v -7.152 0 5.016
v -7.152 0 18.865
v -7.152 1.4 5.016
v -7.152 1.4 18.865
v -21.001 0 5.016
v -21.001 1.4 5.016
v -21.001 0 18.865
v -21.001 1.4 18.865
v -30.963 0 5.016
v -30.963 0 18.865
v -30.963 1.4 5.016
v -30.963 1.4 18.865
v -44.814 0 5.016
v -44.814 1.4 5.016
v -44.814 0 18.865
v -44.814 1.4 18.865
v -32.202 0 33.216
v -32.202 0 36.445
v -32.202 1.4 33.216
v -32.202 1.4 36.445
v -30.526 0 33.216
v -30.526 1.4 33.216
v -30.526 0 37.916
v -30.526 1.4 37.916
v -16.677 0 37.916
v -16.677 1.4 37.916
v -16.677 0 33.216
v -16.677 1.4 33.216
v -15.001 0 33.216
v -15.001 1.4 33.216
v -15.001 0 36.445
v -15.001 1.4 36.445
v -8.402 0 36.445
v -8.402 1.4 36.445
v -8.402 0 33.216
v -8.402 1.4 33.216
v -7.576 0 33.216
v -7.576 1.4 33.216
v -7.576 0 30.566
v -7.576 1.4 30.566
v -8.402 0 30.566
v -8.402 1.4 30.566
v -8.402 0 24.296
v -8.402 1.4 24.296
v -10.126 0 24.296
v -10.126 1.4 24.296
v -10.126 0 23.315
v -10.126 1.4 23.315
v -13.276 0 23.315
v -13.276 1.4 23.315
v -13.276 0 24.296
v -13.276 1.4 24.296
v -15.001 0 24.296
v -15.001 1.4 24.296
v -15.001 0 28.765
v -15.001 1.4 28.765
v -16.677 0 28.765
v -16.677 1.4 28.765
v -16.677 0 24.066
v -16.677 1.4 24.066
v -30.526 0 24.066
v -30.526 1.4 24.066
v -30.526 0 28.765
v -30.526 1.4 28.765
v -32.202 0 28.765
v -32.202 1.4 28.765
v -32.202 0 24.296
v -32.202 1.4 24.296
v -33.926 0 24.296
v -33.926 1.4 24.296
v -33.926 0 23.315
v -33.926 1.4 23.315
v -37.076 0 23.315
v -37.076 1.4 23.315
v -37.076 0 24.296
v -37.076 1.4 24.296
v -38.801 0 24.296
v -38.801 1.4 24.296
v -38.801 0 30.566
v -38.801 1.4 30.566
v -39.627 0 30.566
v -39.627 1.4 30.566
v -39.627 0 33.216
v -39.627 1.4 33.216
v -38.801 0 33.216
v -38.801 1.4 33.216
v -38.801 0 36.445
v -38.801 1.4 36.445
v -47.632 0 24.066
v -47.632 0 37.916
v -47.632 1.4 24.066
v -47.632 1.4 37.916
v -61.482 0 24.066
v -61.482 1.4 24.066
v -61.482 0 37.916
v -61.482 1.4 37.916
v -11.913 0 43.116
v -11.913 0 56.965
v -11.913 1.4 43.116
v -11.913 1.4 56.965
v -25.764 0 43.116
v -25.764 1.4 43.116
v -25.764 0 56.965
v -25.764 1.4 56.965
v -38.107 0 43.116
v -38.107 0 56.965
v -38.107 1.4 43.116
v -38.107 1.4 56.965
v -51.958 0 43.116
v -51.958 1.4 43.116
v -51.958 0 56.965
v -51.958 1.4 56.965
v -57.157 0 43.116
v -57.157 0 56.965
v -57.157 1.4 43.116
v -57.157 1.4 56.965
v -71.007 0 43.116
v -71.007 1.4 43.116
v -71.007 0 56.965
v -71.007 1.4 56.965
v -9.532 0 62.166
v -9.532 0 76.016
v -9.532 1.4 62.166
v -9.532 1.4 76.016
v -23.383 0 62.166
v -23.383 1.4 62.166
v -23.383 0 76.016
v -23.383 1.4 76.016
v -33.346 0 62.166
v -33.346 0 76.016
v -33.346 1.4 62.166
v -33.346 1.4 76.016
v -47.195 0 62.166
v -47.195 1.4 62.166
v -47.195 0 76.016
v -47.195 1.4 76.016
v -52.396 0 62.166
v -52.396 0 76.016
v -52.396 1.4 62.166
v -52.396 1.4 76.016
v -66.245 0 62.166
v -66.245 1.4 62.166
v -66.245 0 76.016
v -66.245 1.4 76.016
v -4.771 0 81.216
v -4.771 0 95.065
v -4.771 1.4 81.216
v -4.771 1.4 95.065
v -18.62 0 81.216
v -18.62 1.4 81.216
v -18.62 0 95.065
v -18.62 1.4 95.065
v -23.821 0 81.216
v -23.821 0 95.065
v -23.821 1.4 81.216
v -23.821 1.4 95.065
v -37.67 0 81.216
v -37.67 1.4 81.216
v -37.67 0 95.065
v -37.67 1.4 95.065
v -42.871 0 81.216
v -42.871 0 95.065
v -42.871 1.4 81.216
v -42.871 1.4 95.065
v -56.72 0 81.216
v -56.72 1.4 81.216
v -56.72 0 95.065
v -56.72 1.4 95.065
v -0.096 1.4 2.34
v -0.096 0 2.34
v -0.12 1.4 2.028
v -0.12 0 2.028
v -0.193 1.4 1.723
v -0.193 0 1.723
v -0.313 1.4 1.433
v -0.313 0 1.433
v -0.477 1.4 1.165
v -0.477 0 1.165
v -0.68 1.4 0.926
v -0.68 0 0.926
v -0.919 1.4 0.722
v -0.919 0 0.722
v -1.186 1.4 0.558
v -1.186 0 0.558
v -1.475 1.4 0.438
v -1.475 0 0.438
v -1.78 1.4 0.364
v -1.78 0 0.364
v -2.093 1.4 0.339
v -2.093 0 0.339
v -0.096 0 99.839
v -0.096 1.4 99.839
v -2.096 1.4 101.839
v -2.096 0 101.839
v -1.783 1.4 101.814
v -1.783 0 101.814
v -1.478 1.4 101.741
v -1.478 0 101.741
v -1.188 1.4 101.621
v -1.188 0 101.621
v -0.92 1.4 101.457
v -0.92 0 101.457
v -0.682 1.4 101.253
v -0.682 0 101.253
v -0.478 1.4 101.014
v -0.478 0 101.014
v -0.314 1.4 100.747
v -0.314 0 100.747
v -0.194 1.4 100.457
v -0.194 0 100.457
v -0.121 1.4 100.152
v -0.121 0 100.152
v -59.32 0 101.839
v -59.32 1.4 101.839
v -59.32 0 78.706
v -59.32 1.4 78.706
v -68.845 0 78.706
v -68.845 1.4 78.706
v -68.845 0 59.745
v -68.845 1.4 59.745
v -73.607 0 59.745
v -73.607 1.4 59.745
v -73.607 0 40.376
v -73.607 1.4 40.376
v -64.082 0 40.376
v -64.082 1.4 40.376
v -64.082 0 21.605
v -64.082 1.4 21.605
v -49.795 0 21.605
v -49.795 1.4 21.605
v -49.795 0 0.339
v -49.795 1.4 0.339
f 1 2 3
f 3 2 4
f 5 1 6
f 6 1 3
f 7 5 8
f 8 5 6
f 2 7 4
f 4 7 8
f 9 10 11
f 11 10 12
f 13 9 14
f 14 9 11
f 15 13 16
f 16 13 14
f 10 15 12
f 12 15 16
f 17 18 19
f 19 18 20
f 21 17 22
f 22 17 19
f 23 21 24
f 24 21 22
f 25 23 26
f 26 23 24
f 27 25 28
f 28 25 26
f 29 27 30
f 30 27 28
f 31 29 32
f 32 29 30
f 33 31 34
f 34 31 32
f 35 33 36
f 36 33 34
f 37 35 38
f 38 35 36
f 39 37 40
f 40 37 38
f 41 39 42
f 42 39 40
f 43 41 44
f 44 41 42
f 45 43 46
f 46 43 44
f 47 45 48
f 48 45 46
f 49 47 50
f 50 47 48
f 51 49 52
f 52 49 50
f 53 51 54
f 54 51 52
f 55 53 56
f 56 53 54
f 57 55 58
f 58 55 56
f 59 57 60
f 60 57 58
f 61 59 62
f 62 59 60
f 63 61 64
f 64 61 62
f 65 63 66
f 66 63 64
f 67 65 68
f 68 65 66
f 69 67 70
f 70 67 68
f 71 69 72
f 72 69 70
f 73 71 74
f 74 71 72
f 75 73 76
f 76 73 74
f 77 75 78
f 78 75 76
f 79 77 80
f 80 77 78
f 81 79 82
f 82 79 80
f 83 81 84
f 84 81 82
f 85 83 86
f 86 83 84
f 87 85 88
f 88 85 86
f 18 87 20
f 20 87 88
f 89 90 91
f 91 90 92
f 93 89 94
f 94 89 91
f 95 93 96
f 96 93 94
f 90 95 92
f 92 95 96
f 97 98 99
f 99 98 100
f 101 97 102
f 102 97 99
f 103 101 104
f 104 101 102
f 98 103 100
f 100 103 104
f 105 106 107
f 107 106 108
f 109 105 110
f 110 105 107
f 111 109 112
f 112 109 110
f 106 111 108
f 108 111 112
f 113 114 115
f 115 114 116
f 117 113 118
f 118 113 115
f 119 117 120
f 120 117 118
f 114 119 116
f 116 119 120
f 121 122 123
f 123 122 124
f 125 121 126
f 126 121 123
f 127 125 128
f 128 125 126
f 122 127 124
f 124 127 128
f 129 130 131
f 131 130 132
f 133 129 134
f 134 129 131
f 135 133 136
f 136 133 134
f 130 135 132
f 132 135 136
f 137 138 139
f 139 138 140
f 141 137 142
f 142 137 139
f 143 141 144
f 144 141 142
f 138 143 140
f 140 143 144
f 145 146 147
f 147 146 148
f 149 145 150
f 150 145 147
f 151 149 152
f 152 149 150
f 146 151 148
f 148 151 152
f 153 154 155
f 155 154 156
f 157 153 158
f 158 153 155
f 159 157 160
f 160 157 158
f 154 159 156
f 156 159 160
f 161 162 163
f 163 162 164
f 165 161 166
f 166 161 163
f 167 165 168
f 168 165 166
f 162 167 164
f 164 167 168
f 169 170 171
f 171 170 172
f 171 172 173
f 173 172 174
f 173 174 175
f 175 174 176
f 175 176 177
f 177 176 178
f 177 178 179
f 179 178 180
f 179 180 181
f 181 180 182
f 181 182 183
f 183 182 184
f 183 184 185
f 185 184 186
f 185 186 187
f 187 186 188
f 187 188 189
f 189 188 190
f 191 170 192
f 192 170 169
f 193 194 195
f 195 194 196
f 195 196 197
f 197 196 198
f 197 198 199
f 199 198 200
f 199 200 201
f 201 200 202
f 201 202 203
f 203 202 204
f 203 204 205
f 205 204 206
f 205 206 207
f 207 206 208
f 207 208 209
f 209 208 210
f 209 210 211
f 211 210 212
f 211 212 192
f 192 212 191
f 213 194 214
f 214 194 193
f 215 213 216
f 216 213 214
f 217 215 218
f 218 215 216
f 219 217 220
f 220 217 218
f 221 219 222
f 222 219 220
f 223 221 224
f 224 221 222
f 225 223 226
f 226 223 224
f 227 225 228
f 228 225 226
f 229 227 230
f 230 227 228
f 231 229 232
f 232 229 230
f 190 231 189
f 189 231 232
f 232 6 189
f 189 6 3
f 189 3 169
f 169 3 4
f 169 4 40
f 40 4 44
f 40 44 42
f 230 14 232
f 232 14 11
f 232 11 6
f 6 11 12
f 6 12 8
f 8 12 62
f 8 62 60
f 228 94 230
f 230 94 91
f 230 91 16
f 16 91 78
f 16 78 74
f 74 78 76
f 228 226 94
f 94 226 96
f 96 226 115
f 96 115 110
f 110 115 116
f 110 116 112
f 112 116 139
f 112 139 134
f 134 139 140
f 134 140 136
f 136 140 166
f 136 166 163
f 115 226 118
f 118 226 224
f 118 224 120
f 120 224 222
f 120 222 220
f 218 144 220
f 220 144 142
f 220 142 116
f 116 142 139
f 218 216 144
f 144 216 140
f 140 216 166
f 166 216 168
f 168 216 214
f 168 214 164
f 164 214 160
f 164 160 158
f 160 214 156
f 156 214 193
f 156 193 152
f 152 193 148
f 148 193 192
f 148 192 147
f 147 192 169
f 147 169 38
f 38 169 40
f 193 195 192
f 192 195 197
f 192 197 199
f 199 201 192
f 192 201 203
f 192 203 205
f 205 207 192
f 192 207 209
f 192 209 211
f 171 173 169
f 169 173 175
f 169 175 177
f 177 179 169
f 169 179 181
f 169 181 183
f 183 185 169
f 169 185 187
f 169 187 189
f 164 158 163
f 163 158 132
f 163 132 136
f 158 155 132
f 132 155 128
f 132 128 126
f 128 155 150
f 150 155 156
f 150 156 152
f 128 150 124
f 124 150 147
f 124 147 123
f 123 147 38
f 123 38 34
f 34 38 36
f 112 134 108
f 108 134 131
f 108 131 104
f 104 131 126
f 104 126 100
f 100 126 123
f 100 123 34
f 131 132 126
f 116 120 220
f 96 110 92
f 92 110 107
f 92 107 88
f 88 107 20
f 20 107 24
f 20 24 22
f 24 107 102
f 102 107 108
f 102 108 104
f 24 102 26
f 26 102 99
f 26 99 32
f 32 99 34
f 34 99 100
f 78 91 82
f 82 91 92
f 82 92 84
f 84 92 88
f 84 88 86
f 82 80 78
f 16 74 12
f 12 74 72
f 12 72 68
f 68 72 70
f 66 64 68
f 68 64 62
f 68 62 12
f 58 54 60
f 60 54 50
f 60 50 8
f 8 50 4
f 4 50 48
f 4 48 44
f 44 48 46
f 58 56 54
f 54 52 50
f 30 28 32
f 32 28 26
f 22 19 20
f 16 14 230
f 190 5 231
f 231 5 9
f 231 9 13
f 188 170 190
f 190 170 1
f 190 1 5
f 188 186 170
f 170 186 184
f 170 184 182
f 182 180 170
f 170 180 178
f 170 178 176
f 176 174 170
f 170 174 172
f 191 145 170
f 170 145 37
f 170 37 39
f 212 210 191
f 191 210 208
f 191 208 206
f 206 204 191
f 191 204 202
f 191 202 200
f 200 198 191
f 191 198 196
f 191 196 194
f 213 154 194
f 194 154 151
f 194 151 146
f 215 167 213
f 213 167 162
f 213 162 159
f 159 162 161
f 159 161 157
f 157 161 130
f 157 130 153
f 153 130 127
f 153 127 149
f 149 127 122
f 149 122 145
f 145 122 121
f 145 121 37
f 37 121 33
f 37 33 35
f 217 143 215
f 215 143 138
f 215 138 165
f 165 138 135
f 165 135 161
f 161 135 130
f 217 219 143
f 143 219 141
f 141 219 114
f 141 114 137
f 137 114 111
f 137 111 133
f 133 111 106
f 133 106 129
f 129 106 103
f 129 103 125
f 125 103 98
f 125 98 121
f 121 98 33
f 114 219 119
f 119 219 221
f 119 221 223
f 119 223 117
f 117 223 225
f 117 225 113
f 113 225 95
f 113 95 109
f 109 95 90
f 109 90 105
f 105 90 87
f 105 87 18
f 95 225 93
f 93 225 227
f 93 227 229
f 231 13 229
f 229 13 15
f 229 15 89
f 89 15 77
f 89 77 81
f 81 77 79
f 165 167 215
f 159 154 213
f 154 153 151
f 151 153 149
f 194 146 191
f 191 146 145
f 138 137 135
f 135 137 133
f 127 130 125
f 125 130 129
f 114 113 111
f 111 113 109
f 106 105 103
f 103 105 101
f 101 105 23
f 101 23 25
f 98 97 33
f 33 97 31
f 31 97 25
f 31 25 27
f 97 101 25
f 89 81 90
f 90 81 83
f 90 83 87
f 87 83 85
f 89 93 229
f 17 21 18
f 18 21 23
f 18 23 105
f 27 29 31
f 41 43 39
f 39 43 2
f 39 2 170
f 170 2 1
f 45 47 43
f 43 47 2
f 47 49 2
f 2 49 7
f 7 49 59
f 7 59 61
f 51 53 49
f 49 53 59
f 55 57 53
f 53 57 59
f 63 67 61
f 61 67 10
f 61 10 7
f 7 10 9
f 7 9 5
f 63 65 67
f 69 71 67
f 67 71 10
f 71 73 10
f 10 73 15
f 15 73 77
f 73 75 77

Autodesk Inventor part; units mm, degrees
ref_plane "YZ Plane" through (0, 0, 0) normal (1, 0, 0) x (0, 1, 0)
ref_plane "XZ Plane" through (0, 0, 0) normal (0, 1, 0) x (-1, 0, 0)
ref_plane "XY Plane" through (0, 0, 0) normal (0, 0, 1) x (1, 0, 0)
sketch "Sketch1" plane through (0, 0, 0) normal (0, 1, 0) x (-1, 0, 0)
  line L0 (309.0479, 99.8402) -> (309.0479, 2.3404)
  line L1 (307.045, 0.3402) -> (2.0931, 0.3389)
  line L2 (0.096, 2.3404) -> (0.096, 99.8389)
  line L3 (2.096, 101.8389) -> (307.045, 101.8402)
  line L4 (126.213, 18.8654) -> (126.213, 14.1663)
  line L5 (126.213, 14.1663) -> (86.4387, 14.1663)
  line L6 (86.4387, 14.1663) -> (86.4387, 17.395)
  line L7 (86.4387, 17.395) -> (84.7136, 17.395)
  line L8 (81.5633, 17.395) -> (79.8382, 17.395)
  line L9 (79.8382, 17.395) -> (79.8382, 14.1663)
  line L10 (79.8382, 14.1663) -> (79.0141, 14.1663)
  line L11 (79.0141, 14.1663) -> (79.0141, 11.5163)
  line L12 (79.0141, 11.5163) -> (79.8382, 11.5163)
  line L13 (79.8382, 11.5163) -> (79.8382, 5.2462)
  line L14 (79.8382, 5.2462) -> (81.5633, 5.2462)
  line L15 (81.5633, 5.2462) -> (81.5633, 4.265)
  line L16 (81.5633, 4.265) -> (84.7136, 4.265)
  line L17 (84.7136, 4.265) -> (84.7136, 5.2462)
  line L18 (84.7136, 5.2462) -> (86.4387, 5.2462)
  line L19 (86.4387, 5.2462) -> (86.4387, 9.7166)
  line L20 (86.4387, 9.7166) -> (126.213, 9.7166)
  line L21 (126.213, 9.7166) -> (126.213, 5.0161)
  line L22 (126.213, 5.0161) -> (140.064, 5.0161)
  line L23 (140.064, 5.0161) -> (140.064, 9.7166)
  line L24 (140.064, 9.7166) -> (179.838, 9.7166)
  line L25 (179.838, 9.7166) -> (179.838, 5.2462)
  line L26 (179.838, 5.2462) -> (181.563, 5.2462)
  line L27 (181.563, 5.2462) -> (181.563, 4.265)
  line L28 (181.563, 4.265) -> (184.714, 4.265)
  line L29 (184.714, 4.265) -> (184.714, 5.2462)
  line L30 (184.714, 5.2462) -> (186.439, 5.2462)
  line L31 (186.439, 5.2462) -> (186.439, 11.5163)
  line L32 (186.439, 11.5163) -> (187.263, 11.5163)
  line L33 (187.263, 11.5163) -> (187.263, 14.1663)
  line L34 (187.263, 14.1663) -> (186.439, 14.1663)
  line L35 (186.439, 14.1663) -> (186.439, 17.395)
  line L36 (186.439, 17.395) -> (184.714, 17.395)
  line L37 (181.563, 17.395) -> (179.838, 17.395)
  line L38 (179.838, 17.395) -> (179.838, 14.1663)
  line L39 (179.838, 14.1663) -> (140.064, 14.1663)
  line L40 (140.064, 14.1663) -> (140.064, 18.8654)
  line L41 (140.064, 18.8654) -> (126.213, 18.8654)
  line L42 (7.152, 18.8654) -> (21.0013, 18.8654)
  line L43 (21.0013, 18.8654) -> (21.0013, 5.0161)
  line L44 (21.0013, 5.0161) -> (7.152, 5.0161)
  line L45 (7.152, 5.0161) -> (7.152, 18.8654)
  line L46 (30.9631, 18.8654) -> (44.8137, 18.8654)
  line L47 (44.8137, 18.8654) -> (44.8137, 5.0161)
  line L48 (44.8137, 5.0161) -> (30.9631, 5.0161)
  line L49 (30.9631, 5.0161) -> (30.9631, 18.8654)
  line L50 (54.7769, 18.8654) -> (68.6262, 18.8654)
  line L51 (68.6262, 18.8654) -> (68.6262, 5.0161)
  line L52 (68.6262, 5.0161) -> (54.7769, 5.0161)
  line L53 (54.7769, 5.0161) -> (54.7769, 18.8654)
  line L54 (197.652, 18.8654) -> (211.501, 18.8654)
  line L55 (211.501, 18.8654) -> (211.501, 5.0161)
  line L56 (211.501, 5.0161) -> (197.652, 5.0161)
  line L57 (197.652, 5.0161) -> (197.652, 18.8654)
  line L58 (221.463, 18.8654) -> (235.314, 18.8654)
  line L59 (235.314, 18.8654) -> (235.314, 5.0161)
  line L60 (235.314, 5.0161) -> (221.463, 5.0161)
  line L61 (221.463, 5.0161) -> (221.463, 18.8654)
  line L62 (252.421, 18.8654) -> (266.27, 18.8654)
  line L63 (266.27, 18.8654) -> (266.27, 5.0161)
  line L64 (266.27, 5.0161) -> (252.421, 5.0161)
  line L65 (252.421, 5.0161) -> (252.421, 18.8654)
  line L66 (271.471, 18.8654) -> (285.32, 18.8654)
  line L67 (285.32, 18.8654) -> (285.32, 5.0161)
  line L68 (285.32, 5.0161) -> (271.471, 5.0161)
  line L69 (271.471, 5.0161) -> (271.471, 18.8654)
  line L70 (290.521, 18.8654) -> (304.37, 18.8654)
  line L71 (304.37, 18.8654) -> (304.37, 5.0161)
  line L72 (304.37, 5.0161) -> (290.521, 5.0161)
  line L73 (290.521, 5.0161) -> (290.521, 18.8654)
  line L74 (16.677, 37.9155) -> (16.677, 33.2163)
  line L75 (16.677, 33.2163) -> (15.0013, 33.2163)
  line L76 (15.0013, 33.2163) -> (15.0013, 36.4451)
  line L77 (15.0013, 36.4451) -> (13.276, 36.4451)
  line L78 (10.1258, 36.4451) -> (8.4019, 36.4451)
  line L79 (8.4019, 36.4451) -> (8.4019, 33.2163)
  line L80 (8.4019, 33.2163) -> (7.5765, 33.2163)
  line L81 (7.5765, 33.2163) -> (7.5765, 30.5663)
  line L82 (7.5765, 30.5663) -> (8.4019, 30.5663)
  line L83 (8.4019, 30.5663) -> (8.4019, 24.2962)
  line L84 (8.4019, 24.2962) -> (10.1258, 24.2962)
  line L85 (10.1258, 24.2962) -> (10.1258, 23.315)
  line L86 (10.1258, 23.315) -> (13.276, 23.315)
  line L87 (13.276, 23.315) -> (13.276, 24.2962)
  line L88 (13.276, 24.2962) -> (15.0013, 24.2962)
  line L89 (15.0013, 24.2962) -> (15.0013, 28.7652)
  line L90 (15.0013, 28.7652) -> (16.677, 28.7652)
  line L91 (16.677, 28.7652) -> (16.677, 24.0661)
  line L92 (16.677, 24.0661) -> (30.5263, 24.0661)
  line L93 (30.5263, 24.0661) -> (30.5263, 28.7652)
  line L94 (30.5263, 28.7652) -> (32.202, 28.7652)
  line L95 (32.202, 28.7652) -> (32.202, 24.2962)
  line L96 (32.202, 24.2962) -> (33.9259, 24.2962)
  line L97 (33.9259, 24.2962) -> (33.9259, 23.315)
  line L98 (33.9259, 23.315) -> (37.0762, 23.315)
  line L99 (37.0762, 23.315) -> (37.0762, 24.2962)
  line L100 (37.0762, 24.2962) -> (38.8013, 24.2962)
  line L101 (38.8013, 24.2962) -> (38.8013, 30.5663)
  line L102 (38.8013, 30.5663) -> (39.6268, 30.5663)
  line L103 (39.6268, 30.5663) -> (39.6268, 33.2163)
  line L104 (39.6268, 33.2163) -> (38.8013, 33.2163)
  line L105 (38.8013, 33.2163) -> (38.8013, 36.4451)
  line L106 (38.8013, 36.4451) -> (37.0762, 36.4451)
  line L107 (33.9259, 36.4451) -> (32.202, 36.4451)
  line L108 (32.202, 36.4451) -> (32.202, 33.2163)
  line L109 (32.202, 33.2163) -> (30.5263, 33.2163)
  line L110 (30.5263, 33.2163) -> (30.5263, 37.9155)
  line L111 (30.5263, 37.9155) -> (16.677, 37.9155)
  line L112 (47.6321, 37.9155) -> (61.4825, 37.9155)
  line L113 (61.4825, 37.9155) -> (61.4825, 24.0661)
  line L114 (61.4825, 24.0661) -> (47.6321, 24.0661)
  line L115 (47.6321, 24.0661) -> (47.6321, 37.9155)
  line L116 (66.6821, 37.9155) -> (80.5325, 37.9155)
  line L117 (80.5325, 37.9155) -> (80.5325, 24.0661)
  line L118 (80.5325, 24.0661) -> (66.6821, 24.0661)
  line L119 (66.6821, 24.0661) -> (66.6821, 37.9155)
  line L120 (85.7321, 37.9155) -> (99.5825, 37.9155)
  line L121 (99.5825, 37.9155) -> (99.5825, 24.0661)
  line L122 (99.5825, 24.0661) -> (85.7321, 24.0661)
  line L123 (85.7321, 24.0661) -> (85.7321, 37.9155)
  line L124 (104.782, 37.9155) -> (118.632, 37.9155)
  line L125 (118.632, 37.9155) -> (118.632, 24.0661)
  line L126 (118.632, 24.0661) -> (104.782, 24.0661)
  line L127 (104.782, 24.0661) -> (104.782, 37.9155)
  line L128 (123.832, 37.9155) -> (137.682, 37.9155)
  line L129 (137.682, 37.9155) -> (137.682, 24.0661)
  line L130 (137.682, 24.0661) -> (123.832, 24.0661)
  line L131 (123.832, 24.0661) -> (123.832, 37.9155)
  line L132 (142.882, 37.9155) -> (156.732, 37.9155)
  line L133 (156.732, 37.9155) -> (156.732, 24.0661)
  line L134 (156.732, 24.0661) -> (142.882, 24.0661)
  line L135 (142.882, 24.0661) -> (142.882, 37.9155)
  line L136 (161.932, 37.9155) -> (175.782, 37.9155)
  line L137 (175.782, 37.9155) -> (175.782, 24.0661)
  line L138 (175.782, 24.0661) -> (161.932, 24.0661)
  line L139 (161.932, 24.0661) -> (161.932, 37.9155)
  line L140 (180.982, 37.9155) -> (194.832, 37.9155)
  line L141 (194.832, 37.9155) -> (194.832, 24.0661)
  line L142 (194.832, 24.0661) -> (180.982, 24.0661)
  line L143 (180.982, 24.0661) -> (180.982, 37.9155)
  line L144 (200.032, 37.9155) -> (213.882, 37.9155)
  line L145 (213.882, 37.9155) -> (213.882, 24.0661)
  line L146 (213.882, 24.0661) -> (200.032, 24.0661)
  line L147 (200.032, 24.0661) -> (200.032, 37.9155)
  line L148 (219.082, 37.9155) -> (232.932, 37.9155)
  line L149 (232.932, 37.9155) -> (232.932, 24.0661)
  line L150 (232.932, 24.0661) -> (219.082, 24.0661)
  line L151 (219.082, 24.0661) -> (219.082, 37.9155)
  line L152 (245.277, 37.9155) -> (259.126, 37.9155)
  line L153 (259.126, 37.9155) -> (259.126, 24.0661)
  line L154 (259.126, 24.0661) -> (245.277, 24.0661)
  line L155 (245.277, 24.0661) -> (245.277, 37.9155)
  line L156 (271.471, 37.9155) -> (285.32, 37.9155)
  line L157 (285.32, 37.9155) -> (285.32, 24.0661)
  line L158 (285.32, 24.0661) -> (271.471, 24.0661)
  line L159 (271.471, 24.0661) -> (271.471, 37.9155)
  line L160 (290.521, 37.9155) -> (304.37, 37.9155)
  line L161 (304.37, 37.9155) -> (304.37, 24.0661)
  line L162 (304.37, 24.0661) -> (290.521, 24.0661)
  line L163 (290.521, 24.0661) -> (290.521, 37.9155)
  line L164 (259.563, 56.9655) -> (259.563, 52.2661)
  line L165 (259.563, 52.2661) -> (257.889, 52.2661)
  line L166 (257.889, 52.2661) -> (257.889, 55.4951)
  line L167 (257.889, 55.4951) -> (256.162, 55.4951)
  line L168 (253.013, 55.4951) -> (251.288, 55.4951)
  line L169 (251.288, 55.4951) -> (251.288, 52.2661)
  line L170 (251.288, 52.2661) -> (250.464, 52.2661)
  line L171 (250.464, 52.2661) -> (250.464, 49.6164)
  line L172 (250.464, 49.6164) -> (251.288, 49.6164)
  line L173 (251.288, 49.6164) -> (251.288, 43.3462)
  line L174 (251.288, 43.3462) -> (253.013, 43.3462)
  line L175 (253.013, 43.3462) -> (253.013, 42.3651)
  line L176 (253.013, 42.3651) -> (256.162, 42.3651)
  line L177 (256.162, 42.3651) -> (256.162, 43.3462)
  line L178 (256.162, 43.3462) -> (257.889, 43.3462)
  line L179 (257.889, 43.3462) -> (257.889, 47.8151)
  line L180 (257.889, 47.8151) -> (259.563, 47.8151)
  line L181 (259.563, 47.8151) -> (259.563, 43.1161)
  line L182 (259.563, 43.1161) -> (273.414, 43.1161)
  line L183 (273.414, 43.1161) -> (273.414, 47.8151)
  line L184 (273.414, 47.8151) -> (275.088, 47.8151)
  line L185 (275.088, 47.8151) -> (275.088, 43.3462)
  line L186 (275.088, 43.3462) -> (276.813, 43.3462)
  line L187 (276.813, 43.3462) -> (276.813, 42.3651)
  line L188 (276.813, 42.3651) -> (279.964, 42.3651)
  line L189 (279.964, 42.3651) -> (279.964, 43.3462)
  line L190 (279.964, 43.3462) -> (281.689, 43.3462)
  line L191 (281.689, 43.3462) -> (281.689, 49.6164)
  line L192 (281.689, 49.6164) -> (282.513, 49.6164)
  line L193 (282.513, 49.6164) -> (282.513, 52.2661)
  line L194 (282.513, 52.2661) -> (281.689, 52.2661)
  line L195 (281.689, 52.2661) -> (281.689, 55.4951)
  line L196 (281.689, 55.4951) -> (279.964, 55.4951)
  line L197 (276.813, 55.4951) -> (275.088, 55.4951)
  line L198 (275.088, 55.4951) -> (275.088, 52.2661)
  line L199 (275.088, 52.2661) -> (273.414, 52.2661)
  line L200 (273.414, 52.2661) -> (273.414, 56.9655)
  line L201 (273.414, 56.9655) -> (259.563, 56.9655)
  line L202 (11.9131, 56.9655) -> (25.7638, 56.9655)
  line L203 (25.7638, 56.9655) -> (25.7638, 43.1161)
  line L204 (25.7638, 43.1161) -> (11.9131, 43.1161)
  line L205 (11.9131, 43.1161) -> (11.9131, 56.9655)
  line L206 (38.1071, 56.9655) -> (51.9575, 56.9655)
  line L207 (51.9575, 56.9655) -> (51.9575, 43.1161)
  line L208 (51.9575, 43.1161) -> (38.1071, 43.1161)
  line L209 (38.1071, 43.1161) -> (38.1071, 56.9655)
  line L210 (57.1571, 56.9655) -> (71.0075, 56.9655)
  line L211 (71.0075, 56.9655) -> (71.0075, 43.1161)
  line L212 (71.0075, 43.1161) -> (57.1571, 43.1161)
  line L213 (57.1571, 43.1161) -> (57.1571, 56.9655)
  line L214 (76.2071, 56.9655) -> (90.0575, 56.9655)
  line L215 (90.0575, 56.9655) -> (90.0575, 43.1161)
  line L216 (90.0575, 43.1161) -> (76.2071, 43.1161)
  line L217 (76.2071, 43.1161) -> (76.2071, 56.9655)
  line L218 (95.2571, 56.9655) -> (109.107, 56.9655)
  line L219 (109.107, 56.9655) -> (109.107, 43.1161)
  line L220 (109.107, 43.1161) -> (95.2571, 43.1161)
  line L221 (95.2571, 43.1161) -> (95.2571, 56.9655)
  line L222 (114.307, 56.9655) -> (128.157, 56.9655)
  line L223 (128.157, 56.9655) -> (128.157, 43.1161)
  line L224 (128.157, 43.1161) -> (114.307, 43.1161)
  line L225 (114.307, 43.1161) -> (114.307, 56.9655)
  line L226 (133.357, 56.9655) -> (147.207, 56.9655)
  line L227 (147.207, 56.9655) -> (147.207, 43.1161)
  line L228 (147.207, 43.1161) -> (133.357, 43.1161)
  line L229 (133.357, 43.1161) -> (133.357, 56.9655)
  line L230 (152.407, 56.9655) -> (166.257, 56.9655)
  line L231 (166.257, 56.9655) -> (166.257, 43.1161)
  line L232 (166.257, 43.1161) -> (152.407, 43.1161)
  line L233 (152.407, 43.1161) -> (152.407, 56.9655)
  line L234 (171.457, 56.9655) -> (185.307, 56.9655)
  line L235 (185.307, 56.9655) -> (185.307, 43.1161)
  line L236 (185.307, 43.1161) -> (171.457, 43.1161)
  line L237 (171.457, 43.1161) -> (171.457, 56.9655)
  line L238 (190.507, 56.9655) -> (204.357, 56.9655)
  line L239 (204.357, 56.9655) -> (204.357, 43.1161)
  line L240 (204.357, 43.1161) -> (190.507, 43.1161)
  line L241 (190.507, 43.1161) -> (190.507, 56.9655)
  line L242 (209.557, 56.9655) -> (223.407, 56.9655)
  line L243 (223.407, 56.9655) -> (223.407, 43.1161)
  line L244 (223.407, 43.1161) -> (209.557, 43.1161)
  line L245 (209.557, 43.1161) -> (209.557, 56.9655)
  line L246 (228.607, 56.9655) -> (242.457, 56.9655)
  line L247 (242.457, 56.9655) -> (242.457, 43.1161)
  line L248 (242.457, 43.1161) -> (228.607, 43.1161)
  line L249 (228.607, 43.1161) -> (228.607, 56.9655)
  line L250 (290.521, 56.9655) -> (304.37, 56.9655)
  line L251 (304.37, 56.9655) -> (304.37, 43.1161)
  line L252 (304.37, 43.1161) -> (290.521, 43.1161)
  line L253 (290.521, 43.1161) -> (290.521, 56.9655)
  line L254 (9.5319, 76.0155) -> (23.3826, 76.0155)
  line L255 (23.3826, 76.0155) -> (23.3826, 62.1661)
  line L256 (23.3826, 62.1661) -> (9.5319, 62.1661)
  line L257 (9.5319, 62.1661) -> (9.5319, 76.0155)
  line L258 (33.3458, 76.0155) -> (47.195, 76.0155)
  line L259 (47.195, 76.0155) -> (47.195, 62.1661)
  line L260 (47.195, 62.1661) -> (33.3458, 62.1661)
  line L261 (33.3458, 62.1661) -> (33.3458, 76.0155)
  line L262 (52.3956, 76.0155) -> (66.245, 76.0155)
  line L263 (66.245, 76.0155) -> (66.245, 62.1661)
  line L264 (66.245, 62.1661) -> (52.3956, 62.1661)
  line L265 (52.3956, 62.1661) -> (52.3956, 76.0155)
  line L266 (71.4456, 76.0155) -> (85.295, 76.0155)
  line L267 (85.295, 76.0155) -> (85.295, 62.1661)
  line L268 (85.295, 62.1661) -> (71.4456, 62.1661)
  line L269 (71.4456, 62.1661) -> (71.4456, 76.0155)
  line L270 (90.4946, 76.0155) -> (104.345, 76.0155)
  line L271 (104.345, 76.0155) -> (104.345, 62.1661)
  line L272 (104.345, 62.1661) -> (90.4946, 62.1661)
  line L273 (90.4946, 62.1661) -> (90.4946, 76.0155)
  line L274 (109.545, 76.0155) -> (123.395, 76.0155)
  line L275 (123.395, 76.0155) -> (123.395, 62.1661)
  line L276 (123.395, 62.1661) -> (109.545, 62.1661)
  line L277 (109.545, 62.1661) -> (109.545, 76.0155)
  line L278 (128.595, 76.0155) -> (142.445, 76.0155)
  line L279 (142.445, 76.0155) -> (142.445, 62.1661)
  line L280 (142.445, 62.1661) -> (128.595, 62.1661)
  line L281 (128.595, 62.1661) -> (128.595, 76.0155)
  line L282 (147.645, 76.0155) -> (161.495, 76.0155)
  line L283 (161.495, 76.0155) -> (161.495, 62.1661)
  line L284 (161.495, 62.1661) -> (147.645, 62.1661)
  line L285 (147.645, 62.1661) -> (147.645, 76.0155)
  line L286 (166.696, 76.0155) -> (180.545, 76.0155)
  line L287 (180.545, 76.0155) -> (180.545, 62.1661)
  line L288 (180.545, 62.1661) -> (166.696, 62.1661)
  line L289 (166.696, 62.1661) -> (166.696, 76.0155)
  line L290 (185.746, 76.0155) -> (199.595, 76.0155)
  line L291 (199.595, 76.0155) -> (199.595, 62.1661)
  line L292 (199.595, 62.1661) -> (185.746, 62.1661)
  line L293 (185.746, 62.1661) -> (185.746, 76.0155)
  line L294 (204.796, 76.0155) -> (218.645, 76.0155)
  line L295 (218.645, 76.0155) -> (218.645, 62.1661)
  line L296 (218.645, 62.1661) -> (204.796, 62.1661)
  line L297 (204.796, 62.1661) -> (204.796, 76.0155)
  line L298 (223.846, 76.0155) -> (237.695, 76.0155)
  line L299 (237.695, 76.0155) -> (237.695, 62.1661)
  line L300 (237.695, 62.1661) -> (223.846, 62.1661)
  line L301 (223.846, 62.1661) -> (223.846, 76.0155)
  line L302 (242.896, 76.0155) -> (256.745, 76.0155)
  line L303 (256.745, 76.0155) -> (256.745, 62.1661)
  line L304 (256.745, 62.1661) -> (242.896, 62.1661)
  line L305 (242.896, 62.1661) -> (242.896, 76.0155)
  line L306 (266.707, 76.0155) -> (280.557, 76.0155)
  line L307 (280.557, 76.0155) -> (280.557, 62.1661)
  line L308 (280.557, 62.1661) -> (266.707, 62.1661)
  line L309 (266.707, 62.1661) -> (266.707, 76.0155)
  line L310 (290.521, 76.0155) -> (304.37, 76.0155)
  line L311 (304.37, 76.0155) -> (304.37, 62.1661)
  line L312 (304.37, 62.1661) -> (290.521, 62.1661)
  line L313 (290.521, 62.1661) -> (290.521, 76.0155)
  line L314 (261.946, 95.0655) -> (261.946, 90.3661)
  line L315 (261.946, 90.3661) -> (260.27, 90.3661)
  line L316 (260.27, 90.3661) -> (260.27, 93.5951)
  line L317 (260.27, 93.5951) -> (258.546, 93.5951)
  line L318 (255.396, 93.5951) -> (253.67, 93.5951)
  line L319 (253.67, 93.5951) -> (253.67, 90.3661)
  line L320 (253.67, 90.3661) -> (252.845, 90.3661)
  line L321 (252.845, 90.3661) -> (252.845, 87.7164)
  line L322 (252.845, 87.7164) -> (253.67, 87.7164)
  line L323 (253.67, 87.7164) -> (253.67, 81.4462)
  line L324 (253.67, 81.4462) -> (255.396, 81.4462)
  line L325 (255.396, 81.4462) -> (255.396, 80.4651)
  line L326 (255.396, 80.4651) -> (258.546, 80.4651)
  line L327 (258.546, 80.4651) -> (258.546, 81.4462)
  line L328 (258.546, 81.4462) -> (260.27, 81.4462)
  line L329 (260.27, 81.4462) -> (260.27, 85.9151)
  line L330 (260.27, 85.9151) -> (261.946, 85.9151)
  line L331 (261.946, 85.9151) -> (261.946, 81.2161)
  line L332 (261.946, 81.2161) -> (275.795, 81.2161)
  line L333 (275.795, 81.2161) -> (275.795, 85.9151)
  line L334 (275.795, 85.9151) -> (277.471, 85.9151)
  line L335 (277.471, 85.9151) -> (277.471, 81.4462)
  line L336 (277.471, 81.4462) -> (279.196, 81.4462)
  line L337 (279.196, 81.4462) -> (279.196, 80.4651)
  line L338 (279.196, 80.4651) -> (282.345, 80.4651)
  line L339 (282.345, 80.4651) -> (282.345, 81.4462)
  line L340 (282.345, 81.4462) -> (284.07, 81.4462)
  line L341 (284.07, 81.4462) -> (284.07, 87.7164)
  line L342 (284.07, 87.7164) -> (284.896, 87.7164)
  line L343 (284.896, 87.7164) -> (284.896, 90.3661)
  line L344 (284.896, 90.3661) -> (284.07, 90.3661)
  line L345 (284.07, 90.3661) -> (284.07, 93.5951)
  line L346 (284.07, 93.5951) -> (282.345, 93.5951)
  line L347 (279.196, 93.5951) -> (277.471, 93.5951)
  line L348 (277.471, 93.5951) -> (277.471, 90.3661)
  line L349 (277.471, 90.3661) -> (275.795, 90.3661)
  line L350 (275.795, 90.3661) -> (275.795, 95.0655)
  line L351 (275.795, 95.0655) -> (261.946, 95.0655)
  line L352 (4.7708, 95.0655) -> (18.6201, 95.0655)
  line L353 (18.6201, 95.0655) -> (18.6201, 81.2161)
  line L354 (18.6201, 81.2161) -> (4.7708, 81.2161)
  line L355 (4.7708, 81.2161) -> (4.7708, 95.0655)
  line L356 (23.8208, 95.0655) -> (37.67, 95.0655)
  line L357 (37.67, 95.0655) -> (37.67, 81.2161)
  line L358 (37.67, 81.2161) -> (23.8208, 81.2161)
  line L359 (23.8208, 81.2161) -> (23.8208, 95.0655)
  line L360 (42.8706, 95.0655) -> (56.72, 95.0655)
  line L361 (56.72, 95.0655) -> (56.72, 81.2161)
  line L362 (56.72, 81.2161) -> (42.8706, 81.2161)
  line L363 (42.8706, 81.2161) -> (42.8706, 95.0655)
  line L364 (61.9206, 95.0655) -> (75.77, 95.0655)
  line L365 (75.77, 95.0655) -> (75.77, 81.2161)
  line L366 (75.77, 81.2161) -> (61.9206, 81.2161)
  line L367 (61.9206, 81.2161) -> (61.9206, 95.0655)
  line L368 (80.9706, 95.0655) -> (94.82, 95.0655)
  line L369 (94.82, 95.0655) -> (94.82, 81.2161)
  line L370 (94.82, 81.2161) -> (80.9706, 81.2161)
  line L371 (80.9706, 81.2161) -> (80.9706, 95.0655)
  line L372 (100.021, 95.0655) -> (113.87, 95.0655)
  line L373 (113.87, 95.0655) -> (113.87, 81.2161)
  line L374 (113.87, 81.2161) -> (100.021, 81.2161)
  line L375 (100.021, 81.2161) -> (100.021, 95.0655)
  line L376 (119.071, 95.0655) -> (132.92, 95.0655)
  line L377 (132.92, 95.0655) -> (132.92, 81.2161)
  line L378 (132.92, 81.2161) -> (119.071, 81.2161)
  line L379 (119.071, 81.2161) -> (119.071, 95.0655)
  line L380 (138.121, 95.0655) -> (151.97, 95.0655)
  line L381 (151.97, 95.0655) -> (151.97, 81.2161)
  line L382 (151.97, 81.2161) -> (138.121, 81.2161)
  line L383 (138.121, 81.2161) -> (138.121, 95.0655)
  line L384 (157.171, 95.0655) -> (171.02, 95.0655)
  line L385 (171.02, 95.0655) -> (171.02, 81.2161)
  line L386 (171.02, 81.2161) -> (157.171, 81.2161)
  line L387 (157.171, 81.2161) -> (157.171, 95.0655)
  line L388 (176.221, 95.0655) -> (190.07, 95.0655)
  line L389 (190.07, 95.0655) -> (190.07, 81.2161)
  line L390 (190.07, 81.2161) -> (176.221, 81.2161)
  line L391 (176.221, 81.2161) -> (176.221, 95.0655)
  line L392 (195.271, 95.0655) -> (209.12, 95.0655)
  line L393 (209.12, 95.0655) -> (209.12, 81.2161)
  line L394 (209.12, 81.2161) -> (195.271, 81.2161)
  line L395 (195.271, 81.2161) -> (195.271, 95.0655)
  line L396 (214.321, 95.0655) -> (228.17, 95.0655)
  line L397 (228.17, 95.0655) -> (228.17, 81.2161)
  line L398 (228.17, 81.2161) -> (214.321, 81.2161)
  line L399 (214.321, 81.2161) -> (214.321, 95.0655)
  line L400 (233.371, 95.0655) -> (247.22, 95.0655)
  line L401 (247.22, 95.0655) -> (247.22, 81.2161)
  line L402 (247.22, 81.2161) -> (233.371, 81.2161)
  line L403 (233.371, 81.2161) -> (233.371, 95.0655)
  line L404 (290.521, 95.0655) -> (304.37, 95.0655)
  line L405 (304.37, 95.0655) -> (304.37, 81.2161)
  line L406 (304.37, 81.2161) -> (290.521, 81.2161)
  line L407 (290.521, 81.2161) -> (290.521, 95.0655)
  arc A0 (307.045, 0.3402) -> (309.0479, 2.3404) centre (307.0479, 2.3402) ccw
  arc A1 (0.096, 2.3404) -> (2.0931, 0.3389) centre (2.096, 2.3389) ccw
  arc A2 (309.0479, 99.8402) -> (307.045, 101.8402) centre (307.0479, 99.8402) ccw
  arc A3 (2.096, 101.8389) -> (0.096, 99.8389) centre (2.096, 99.8389) ccw
  line L408 (221.0479, 101.8399) -> (221.0479, 99.8399)
  line L409 (221.0479, 99.8399) -> (236.0479, 99.8399)
  line L410 (221.0479, 99.8399) -> (206.0479, 99.8399)
  line L411 (221.0479, 99.8399) -> (236.0479, 99.8399) construction
  circle A4 centre (221.0479, 99.8399) radius 1.75
  circle A5 centre (206.0479, 99.8399) radius 1.75
  circle A6 centre (236.0479, 99.8399) radius 1.75
  line L412 (187.907, 40.376) -> (187.907, 59.7445)
  line L413 (187.907, 59.7445) -> (183.1445, 59.7445)
  line L414 (183.1445, 59.7445) -> (183.1445, 78.7061)
  line L415 (183.1445, 78.7061) -> (192.6705, 78.7061)
  line L416 (192.6705, 78.7061) -> (192.6704, 101.8397)
  line L417 (187.907, 40.376) -> (197.432, 40.376)
  line L418 (197.432, 40.376) -> (197.432, 21.6053)
  line L419 (197.432, 21.6053) -> (216.482, 21.6053)
  line L420 (216.482, 21.6053) -> (216.4821, 0.3398)
  line L421 (10.1258, 36.4451) -> (13.276, 36.4451)
  line L422 (33.9259, 36.4451) -> (37.0762, 36.4451)
  line L423 (81.5633, 17.395) -> (84.7136, 17.395)
  line L424 (181.563, 17.395) -> (184.714, 17.395)
  line L425 (253.013, 55.4951) -> (256.162, 55.4951)
  line L426 (276.813, 55.4951) -> (279.964, 55.4951)
  line L427 (282.345, 93.5951) -> (279.196, 93.5951)
  line L428 (258.546, 93.5951) -> (255.396, 93.5951)
  line L429 (49.7953, 0.3391) -> (49.7953, 21.6053)
  line L430 (49.7953, 21.6053) -> (64.0823, 21.6053)
  line L431 (64.0823, 21.6053) -> (64.0823, 40.376)
  line L432 (64.0823, 40.376) -> (73.6073, 40.376)
  line L433 (73.6073, 40.376) -> (73.6073, 59.7445)
  line L434 (73.6073, 59.7445) -> (68.8448, 59.7445)
  line L435 (68.8448, 59.7445) -> (68.8448, 78.7061)
  line L436 (68.8448, 78.7061) -> (59.3203, 78.7061)
  line L437 (59.3203, 78.7061) -> (59.3202, 101.8391)
  point P0 (4.7708, 81.2161)
  point P1 (7.152, 5.0161)
  point P2 (193.4145, 0.3397)
  dimension "d0" = 308.9519
  dimension "d1" = 101.5
  dimension "d12" = 88
  dimension "d13" = 2
  dimension "d14" = 15
  dimension "d15" = 15
  dimension "d16" = 180
  dimension "d20" = 3.5
  dimension "d21" = 3.5
  dimension "d22" = 3.5
extrude "Extrusion5" add sketch "Sketch1" along normal blind 1.4 contours L1 A1 L2 A3 L3 L437 L436 L435 L434 L433 L432 L431 L430 L429
properties part number "case_plate_p3"
